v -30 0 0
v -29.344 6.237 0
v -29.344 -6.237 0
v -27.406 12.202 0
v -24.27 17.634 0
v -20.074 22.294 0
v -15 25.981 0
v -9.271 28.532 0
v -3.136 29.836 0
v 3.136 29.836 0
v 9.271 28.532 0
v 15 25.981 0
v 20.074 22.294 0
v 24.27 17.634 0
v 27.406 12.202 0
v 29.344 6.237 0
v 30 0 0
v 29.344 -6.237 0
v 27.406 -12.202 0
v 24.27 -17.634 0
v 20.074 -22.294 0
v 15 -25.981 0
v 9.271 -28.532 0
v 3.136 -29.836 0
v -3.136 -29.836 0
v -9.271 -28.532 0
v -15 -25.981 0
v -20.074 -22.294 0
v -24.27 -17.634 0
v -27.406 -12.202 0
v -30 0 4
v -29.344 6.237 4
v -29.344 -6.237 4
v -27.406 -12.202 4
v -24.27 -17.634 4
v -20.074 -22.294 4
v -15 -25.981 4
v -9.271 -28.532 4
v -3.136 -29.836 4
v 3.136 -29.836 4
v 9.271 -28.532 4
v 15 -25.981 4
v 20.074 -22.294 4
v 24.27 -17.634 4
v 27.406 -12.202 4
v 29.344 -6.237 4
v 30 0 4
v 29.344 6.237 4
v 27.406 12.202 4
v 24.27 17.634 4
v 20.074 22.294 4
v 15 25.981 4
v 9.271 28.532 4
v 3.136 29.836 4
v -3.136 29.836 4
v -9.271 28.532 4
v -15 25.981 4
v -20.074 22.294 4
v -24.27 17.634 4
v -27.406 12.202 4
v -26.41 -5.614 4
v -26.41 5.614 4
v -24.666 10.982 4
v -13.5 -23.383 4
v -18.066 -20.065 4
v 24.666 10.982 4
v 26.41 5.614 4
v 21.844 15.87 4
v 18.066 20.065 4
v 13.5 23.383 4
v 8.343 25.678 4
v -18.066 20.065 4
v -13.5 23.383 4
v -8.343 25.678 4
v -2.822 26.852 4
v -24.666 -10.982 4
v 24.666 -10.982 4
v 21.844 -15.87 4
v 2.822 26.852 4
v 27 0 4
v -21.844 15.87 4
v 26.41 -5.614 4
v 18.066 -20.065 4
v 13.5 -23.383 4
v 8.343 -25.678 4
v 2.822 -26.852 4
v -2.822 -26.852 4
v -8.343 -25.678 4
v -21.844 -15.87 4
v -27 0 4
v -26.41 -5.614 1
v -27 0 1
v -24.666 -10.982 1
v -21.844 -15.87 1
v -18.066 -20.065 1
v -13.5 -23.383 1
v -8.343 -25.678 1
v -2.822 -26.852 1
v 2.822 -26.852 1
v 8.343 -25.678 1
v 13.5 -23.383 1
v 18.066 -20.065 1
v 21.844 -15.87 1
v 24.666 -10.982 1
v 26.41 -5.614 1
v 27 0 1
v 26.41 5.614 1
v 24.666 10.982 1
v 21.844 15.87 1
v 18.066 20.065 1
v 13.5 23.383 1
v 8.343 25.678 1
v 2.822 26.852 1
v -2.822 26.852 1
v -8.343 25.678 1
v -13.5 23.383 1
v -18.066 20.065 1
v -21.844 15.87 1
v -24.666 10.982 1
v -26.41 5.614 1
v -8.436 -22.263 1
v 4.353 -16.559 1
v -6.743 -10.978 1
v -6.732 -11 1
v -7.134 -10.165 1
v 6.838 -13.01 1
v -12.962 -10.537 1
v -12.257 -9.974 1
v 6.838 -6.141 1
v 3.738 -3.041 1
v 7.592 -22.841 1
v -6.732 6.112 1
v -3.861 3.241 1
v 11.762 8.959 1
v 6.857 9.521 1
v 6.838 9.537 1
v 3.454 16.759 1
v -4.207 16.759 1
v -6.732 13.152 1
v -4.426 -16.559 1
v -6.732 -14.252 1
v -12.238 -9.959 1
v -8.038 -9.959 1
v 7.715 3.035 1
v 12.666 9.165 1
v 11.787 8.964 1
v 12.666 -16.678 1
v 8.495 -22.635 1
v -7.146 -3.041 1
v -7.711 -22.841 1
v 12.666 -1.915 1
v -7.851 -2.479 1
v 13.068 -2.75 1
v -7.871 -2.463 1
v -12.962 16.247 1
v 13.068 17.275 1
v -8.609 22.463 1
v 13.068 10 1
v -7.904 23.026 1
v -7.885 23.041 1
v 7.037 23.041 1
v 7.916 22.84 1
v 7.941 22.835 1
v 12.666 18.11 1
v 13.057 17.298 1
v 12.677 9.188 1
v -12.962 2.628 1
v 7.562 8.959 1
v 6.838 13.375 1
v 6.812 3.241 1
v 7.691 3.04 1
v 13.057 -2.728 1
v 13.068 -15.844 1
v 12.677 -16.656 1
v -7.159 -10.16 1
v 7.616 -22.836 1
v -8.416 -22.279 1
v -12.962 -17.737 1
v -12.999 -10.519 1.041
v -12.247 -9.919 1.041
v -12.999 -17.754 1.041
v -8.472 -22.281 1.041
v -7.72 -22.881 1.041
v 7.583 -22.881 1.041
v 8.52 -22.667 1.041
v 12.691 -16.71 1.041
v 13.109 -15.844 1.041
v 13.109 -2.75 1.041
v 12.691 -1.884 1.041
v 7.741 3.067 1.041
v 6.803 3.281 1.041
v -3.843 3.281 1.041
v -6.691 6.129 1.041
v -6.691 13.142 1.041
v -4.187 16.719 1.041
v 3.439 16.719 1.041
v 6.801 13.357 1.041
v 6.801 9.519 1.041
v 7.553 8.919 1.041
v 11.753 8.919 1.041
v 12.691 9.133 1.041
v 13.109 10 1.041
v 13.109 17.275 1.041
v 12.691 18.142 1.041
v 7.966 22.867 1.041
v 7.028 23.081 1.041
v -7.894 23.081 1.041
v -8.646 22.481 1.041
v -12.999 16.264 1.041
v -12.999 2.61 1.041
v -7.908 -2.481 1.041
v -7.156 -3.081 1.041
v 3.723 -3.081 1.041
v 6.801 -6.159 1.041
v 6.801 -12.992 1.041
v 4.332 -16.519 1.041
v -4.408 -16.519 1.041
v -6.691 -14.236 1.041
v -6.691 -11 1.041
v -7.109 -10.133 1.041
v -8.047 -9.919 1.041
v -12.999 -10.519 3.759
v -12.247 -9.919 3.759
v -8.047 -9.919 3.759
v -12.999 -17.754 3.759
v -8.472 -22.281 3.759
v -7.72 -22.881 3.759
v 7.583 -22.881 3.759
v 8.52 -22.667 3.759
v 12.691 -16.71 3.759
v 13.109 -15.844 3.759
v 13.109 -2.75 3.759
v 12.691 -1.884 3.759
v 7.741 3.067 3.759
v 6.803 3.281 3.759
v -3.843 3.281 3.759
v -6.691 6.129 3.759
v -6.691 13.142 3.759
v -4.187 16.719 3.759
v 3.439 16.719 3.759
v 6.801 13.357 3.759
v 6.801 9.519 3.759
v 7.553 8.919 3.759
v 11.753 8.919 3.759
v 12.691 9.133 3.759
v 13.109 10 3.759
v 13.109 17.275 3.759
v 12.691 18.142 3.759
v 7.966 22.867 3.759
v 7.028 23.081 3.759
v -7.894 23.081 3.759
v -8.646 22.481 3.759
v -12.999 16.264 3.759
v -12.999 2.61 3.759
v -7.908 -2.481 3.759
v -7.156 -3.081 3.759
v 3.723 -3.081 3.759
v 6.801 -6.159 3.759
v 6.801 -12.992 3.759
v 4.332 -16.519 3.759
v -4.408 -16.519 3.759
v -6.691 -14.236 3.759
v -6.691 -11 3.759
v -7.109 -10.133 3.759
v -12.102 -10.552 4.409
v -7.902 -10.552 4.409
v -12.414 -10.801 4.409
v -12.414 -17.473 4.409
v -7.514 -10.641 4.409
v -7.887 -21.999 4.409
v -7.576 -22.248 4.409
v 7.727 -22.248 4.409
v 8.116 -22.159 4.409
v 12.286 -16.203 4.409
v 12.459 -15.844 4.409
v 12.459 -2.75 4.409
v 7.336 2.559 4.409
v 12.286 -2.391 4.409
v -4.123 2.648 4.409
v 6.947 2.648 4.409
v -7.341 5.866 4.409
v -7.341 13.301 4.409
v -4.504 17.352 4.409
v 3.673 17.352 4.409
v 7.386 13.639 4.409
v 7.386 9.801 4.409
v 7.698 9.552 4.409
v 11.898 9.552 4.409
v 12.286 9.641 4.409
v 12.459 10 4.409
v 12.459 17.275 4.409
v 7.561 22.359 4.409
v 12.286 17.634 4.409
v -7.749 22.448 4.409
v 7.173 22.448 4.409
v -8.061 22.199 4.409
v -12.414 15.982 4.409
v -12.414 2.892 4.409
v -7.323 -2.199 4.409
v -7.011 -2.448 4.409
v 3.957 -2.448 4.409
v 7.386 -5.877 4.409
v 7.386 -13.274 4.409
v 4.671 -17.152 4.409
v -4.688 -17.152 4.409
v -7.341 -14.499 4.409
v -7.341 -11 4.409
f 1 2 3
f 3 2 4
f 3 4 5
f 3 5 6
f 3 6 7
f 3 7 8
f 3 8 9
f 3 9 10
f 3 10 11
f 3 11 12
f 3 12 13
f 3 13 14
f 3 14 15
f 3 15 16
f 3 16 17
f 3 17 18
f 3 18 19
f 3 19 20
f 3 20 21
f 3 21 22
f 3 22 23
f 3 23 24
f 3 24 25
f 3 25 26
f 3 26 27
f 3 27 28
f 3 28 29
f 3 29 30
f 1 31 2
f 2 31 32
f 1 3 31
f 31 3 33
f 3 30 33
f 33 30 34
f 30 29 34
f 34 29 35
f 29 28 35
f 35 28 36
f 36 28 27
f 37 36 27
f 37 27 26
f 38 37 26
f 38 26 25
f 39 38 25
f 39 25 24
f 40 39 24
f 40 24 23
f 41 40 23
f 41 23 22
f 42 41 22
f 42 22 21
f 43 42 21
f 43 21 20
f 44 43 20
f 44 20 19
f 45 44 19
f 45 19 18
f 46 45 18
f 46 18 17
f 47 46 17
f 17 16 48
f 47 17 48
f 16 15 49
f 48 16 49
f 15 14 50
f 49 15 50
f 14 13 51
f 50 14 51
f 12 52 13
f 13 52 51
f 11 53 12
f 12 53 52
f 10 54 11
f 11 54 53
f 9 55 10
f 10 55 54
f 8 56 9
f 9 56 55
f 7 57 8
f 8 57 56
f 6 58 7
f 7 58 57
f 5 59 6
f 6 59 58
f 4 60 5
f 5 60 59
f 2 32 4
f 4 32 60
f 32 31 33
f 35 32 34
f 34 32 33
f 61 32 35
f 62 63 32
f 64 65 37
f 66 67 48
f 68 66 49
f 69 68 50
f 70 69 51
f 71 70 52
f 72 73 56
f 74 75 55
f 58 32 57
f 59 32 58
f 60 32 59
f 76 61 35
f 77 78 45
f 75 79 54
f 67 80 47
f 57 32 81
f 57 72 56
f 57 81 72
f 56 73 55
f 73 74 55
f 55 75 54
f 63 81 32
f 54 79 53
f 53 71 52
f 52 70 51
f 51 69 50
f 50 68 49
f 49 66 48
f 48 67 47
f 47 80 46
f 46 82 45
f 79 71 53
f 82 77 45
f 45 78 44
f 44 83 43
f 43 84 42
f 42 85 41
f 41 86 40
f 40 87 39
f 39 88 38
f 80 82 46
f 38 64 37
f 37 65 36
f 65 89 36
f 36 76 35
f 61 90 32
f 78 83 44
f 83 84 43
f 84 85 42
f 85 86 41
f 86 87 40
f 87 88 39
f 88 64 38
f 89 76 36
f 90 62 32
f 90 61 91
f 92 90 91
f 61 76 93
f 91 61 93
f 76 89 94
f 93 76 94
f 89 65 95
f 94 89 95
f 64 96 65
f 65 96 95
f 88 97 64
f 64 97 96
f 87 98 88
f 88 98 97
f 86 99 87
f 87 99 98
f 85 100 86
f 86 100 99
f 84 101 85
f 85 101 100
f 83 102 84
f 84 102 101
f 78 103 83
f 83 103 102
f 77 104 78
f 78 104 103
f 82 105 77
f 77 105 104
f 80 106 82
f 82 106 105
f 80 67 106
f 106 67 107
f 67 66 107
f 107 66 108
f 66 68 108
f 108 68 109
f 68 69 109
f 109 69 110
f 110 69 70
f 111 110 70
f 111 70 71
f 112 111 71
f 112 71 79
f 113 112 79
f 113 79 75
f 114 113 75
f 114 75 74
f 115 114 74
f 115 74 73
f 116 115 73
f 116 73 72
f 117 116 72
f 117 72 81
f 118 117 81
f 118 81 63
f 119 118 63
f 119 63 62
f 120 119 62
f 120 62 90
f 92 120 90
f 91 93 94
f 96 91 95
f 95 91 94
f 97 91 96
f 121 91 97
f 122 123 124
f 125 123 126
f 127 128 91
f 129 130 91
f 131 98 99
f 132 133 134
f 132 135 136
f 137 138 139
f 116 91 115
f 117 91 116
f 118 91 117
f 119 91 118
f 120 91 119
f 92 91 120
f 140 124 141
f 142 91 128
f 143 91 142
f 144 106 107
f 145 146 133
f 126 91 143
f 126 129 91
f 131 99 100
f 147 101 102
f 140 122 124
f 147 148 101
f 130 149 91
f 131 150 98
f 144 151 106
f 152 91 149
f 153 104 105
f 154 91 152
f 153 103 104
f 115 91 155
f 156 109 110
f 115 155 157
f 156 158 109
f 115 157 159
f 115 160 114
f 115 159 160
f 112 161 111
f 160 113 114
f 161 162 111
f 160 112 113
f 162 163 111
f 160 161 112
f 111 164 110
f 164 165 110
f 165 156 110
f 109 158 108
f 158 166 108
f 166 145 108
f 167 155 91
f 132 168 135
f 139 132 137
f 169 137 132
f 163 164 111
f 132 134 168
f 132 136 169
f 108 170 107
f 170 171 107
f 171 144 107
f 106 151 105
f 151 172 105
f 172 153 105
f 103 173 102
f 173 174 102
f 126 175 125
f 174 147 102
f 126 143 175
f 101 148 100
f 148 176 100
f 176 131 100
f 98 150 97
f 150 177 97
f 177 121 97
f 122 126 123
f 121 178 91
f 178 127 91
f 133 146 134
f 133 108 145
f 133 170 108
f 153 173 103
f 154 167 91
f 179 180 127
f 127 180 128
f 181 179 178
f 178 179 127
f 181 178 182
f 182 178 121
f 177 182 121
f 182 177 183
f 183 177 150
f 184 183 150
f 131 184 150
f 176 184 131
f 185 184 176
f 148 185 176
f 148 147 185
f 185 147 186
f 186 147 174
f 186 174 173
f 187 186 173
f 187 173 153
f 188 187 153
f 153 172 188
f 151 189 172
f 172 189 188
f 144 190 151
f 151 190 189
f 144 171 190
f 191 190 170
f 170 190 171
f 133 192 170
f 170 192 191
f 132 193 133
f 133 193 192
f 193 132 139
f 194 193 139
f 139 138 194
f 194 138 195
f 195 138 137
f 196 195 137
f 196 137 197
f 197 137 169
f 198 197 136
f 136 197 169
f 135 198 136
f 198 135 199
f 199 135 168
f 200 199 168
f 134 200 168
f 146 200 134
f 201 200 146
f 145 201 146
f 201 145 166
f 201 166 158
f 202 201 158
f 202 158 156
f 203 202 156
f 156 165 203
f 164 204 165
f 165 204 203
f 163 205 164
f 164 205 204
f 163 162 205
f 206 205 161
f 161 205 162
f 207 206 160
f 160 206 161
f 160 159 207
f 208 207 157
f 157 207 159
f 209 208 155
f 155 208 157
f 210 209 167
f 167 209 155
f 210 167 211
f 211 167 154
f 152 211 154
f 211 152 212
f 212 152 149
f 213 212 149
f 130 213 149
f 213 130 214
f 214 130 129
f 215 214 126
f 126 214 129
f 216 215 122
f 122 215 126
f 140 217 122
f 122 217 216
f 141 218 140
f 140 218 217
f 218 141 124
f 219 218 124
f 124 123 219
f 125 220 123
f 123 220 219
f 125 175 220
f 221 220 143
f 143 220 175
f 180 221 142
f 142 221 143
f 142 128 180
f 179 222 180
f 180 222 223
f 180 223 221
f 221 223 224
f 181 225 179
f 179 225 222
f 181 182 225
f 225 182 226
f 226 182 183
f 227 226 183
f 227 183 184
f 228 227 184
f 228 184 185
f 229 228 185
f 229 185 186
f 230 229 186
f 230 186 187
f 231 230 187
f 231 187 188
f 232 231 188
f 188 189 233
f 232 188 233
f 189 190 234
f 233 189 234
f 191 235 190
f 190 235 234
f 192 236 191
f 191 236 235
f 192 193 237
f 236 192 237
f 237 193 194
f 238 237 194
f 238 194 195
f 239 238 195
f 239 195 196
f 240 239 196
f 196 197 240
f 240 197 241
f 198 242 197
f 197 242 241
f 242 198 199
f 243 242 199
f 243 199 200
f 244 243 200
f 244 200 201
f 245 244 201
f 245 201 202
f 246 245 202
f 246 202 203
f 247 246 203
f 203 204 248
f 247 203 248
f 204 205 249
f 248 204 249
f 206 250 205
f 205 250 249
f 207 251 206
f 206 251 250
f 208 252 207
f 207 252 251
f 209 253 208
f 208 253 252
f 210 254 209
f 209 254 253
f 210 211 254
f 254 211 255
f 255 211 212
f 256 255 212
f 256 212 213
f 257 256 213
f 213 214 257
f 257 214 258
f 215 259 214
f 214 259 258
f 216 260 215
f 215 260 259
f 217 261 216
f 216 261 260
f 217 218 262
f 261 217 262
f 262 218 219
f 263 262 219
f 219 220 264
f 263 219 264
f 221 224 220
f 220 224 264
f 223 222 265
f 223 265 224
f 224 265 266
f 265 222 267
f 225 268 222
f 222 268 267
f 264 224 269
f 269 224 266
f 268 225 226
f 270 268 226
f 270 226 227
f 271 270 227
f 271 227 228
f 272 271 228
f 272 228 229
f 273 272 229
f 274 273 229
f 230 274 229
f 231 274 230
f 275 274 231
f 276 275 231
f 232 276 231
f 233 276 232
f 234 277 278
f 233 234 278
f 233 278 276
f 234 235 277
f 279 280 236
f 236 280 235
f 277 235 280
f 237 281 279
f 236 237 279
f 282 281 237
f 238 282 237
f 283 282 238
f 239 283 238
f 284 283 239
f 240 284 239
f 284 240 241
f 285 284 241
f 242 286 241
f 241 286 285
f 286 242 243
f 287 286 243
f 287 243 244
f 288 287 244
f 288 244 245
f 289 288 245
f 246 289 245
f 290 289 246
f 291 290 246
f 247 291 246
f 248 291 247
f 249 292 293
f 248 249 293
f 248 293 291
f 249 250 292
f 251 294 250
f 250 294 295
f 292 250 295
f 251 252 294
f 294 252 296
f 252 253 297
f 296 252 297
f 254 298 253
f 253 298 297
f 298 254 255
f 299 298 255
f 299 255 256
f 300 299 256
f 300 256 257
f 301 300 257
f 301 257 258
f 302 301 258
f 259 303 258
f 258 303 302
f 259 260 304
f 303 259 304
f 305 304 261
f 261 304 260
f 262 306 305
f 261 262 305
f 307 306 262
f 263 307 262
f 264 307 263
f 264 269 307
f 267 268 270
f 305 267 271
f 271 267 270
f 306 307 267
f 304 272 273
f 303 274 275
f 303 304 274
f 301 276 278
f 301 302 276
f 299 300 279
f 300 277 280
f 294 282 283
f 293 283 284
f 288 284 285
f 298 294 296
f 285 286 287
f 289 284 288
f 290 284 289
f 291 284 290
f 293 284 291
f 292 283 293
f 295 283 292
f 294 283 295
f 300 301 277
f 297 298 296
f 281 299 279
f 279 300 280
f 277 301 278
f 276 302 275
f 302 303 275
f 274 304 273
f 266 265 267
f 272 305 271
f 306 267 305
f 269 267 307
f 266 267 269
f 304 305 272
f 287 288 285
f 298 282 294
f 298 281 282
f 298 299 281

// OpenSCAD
translate([-12,-2,1.5]) scale([0.6,0.6,0.6]){
 minkowski(){
  difference(){
   union(){

	rotate([0,0,135]) translate([-5,-14,0]) cube([10,6,3]);
	rotate([0,0,135]) translate([-28,-25,0]) cube([10,6,3]);
	rotate([0,0,135]) translate([-30,10,0]) cube([10,6,3]);
	rotate([0,0,135]) translate([-5,-48,0]) cube([10,6,3]);
	rotate([0,0,235]) translate([-5,38,0]) cube([10,6,3]);
	rotate([0,0,235]) translate([-35,-15,0]) cube([10,6,3]);

	cube([40,7,3]);
	cube([7,40,3]);
	translate([0,33,0]) cube([40,7,3]);
	translate([33,20,0]) cube([7,15,3]);
	translate([0,-30,0]) cube([7,15,3]);
	translate([33,-33,0]) cube([7,40,3]);
	translate([0,-33,0]) cube([40,7,3]);

}   //union

	rotate([0,0,135]) translate([-8,-6,-1]) cube([15,6,5]);
	rotate([0,0,135]) translate([-30,-33.4,-1]) cube([15,6,5]);
	rotate([0,0,135]) translate([-30,18,-1]) cube([15,6,5]);
	rotate([0,0,135]) translate([-7,-57,-1]) cube([15,6,5]);
	rotate([0,0,235]) translate([-5,46,-1]) cube([15,6,5]);
	rotate([0,0,235]) translate([-37,-23,-1]) cube([15,6,5]);

}   //difference
 sphere(2);
} //monkowski
}	//scale
 difference(){
	cylinder(4,30,30);
	translate([0,0,1]) cylinder(4,27,27);
}
